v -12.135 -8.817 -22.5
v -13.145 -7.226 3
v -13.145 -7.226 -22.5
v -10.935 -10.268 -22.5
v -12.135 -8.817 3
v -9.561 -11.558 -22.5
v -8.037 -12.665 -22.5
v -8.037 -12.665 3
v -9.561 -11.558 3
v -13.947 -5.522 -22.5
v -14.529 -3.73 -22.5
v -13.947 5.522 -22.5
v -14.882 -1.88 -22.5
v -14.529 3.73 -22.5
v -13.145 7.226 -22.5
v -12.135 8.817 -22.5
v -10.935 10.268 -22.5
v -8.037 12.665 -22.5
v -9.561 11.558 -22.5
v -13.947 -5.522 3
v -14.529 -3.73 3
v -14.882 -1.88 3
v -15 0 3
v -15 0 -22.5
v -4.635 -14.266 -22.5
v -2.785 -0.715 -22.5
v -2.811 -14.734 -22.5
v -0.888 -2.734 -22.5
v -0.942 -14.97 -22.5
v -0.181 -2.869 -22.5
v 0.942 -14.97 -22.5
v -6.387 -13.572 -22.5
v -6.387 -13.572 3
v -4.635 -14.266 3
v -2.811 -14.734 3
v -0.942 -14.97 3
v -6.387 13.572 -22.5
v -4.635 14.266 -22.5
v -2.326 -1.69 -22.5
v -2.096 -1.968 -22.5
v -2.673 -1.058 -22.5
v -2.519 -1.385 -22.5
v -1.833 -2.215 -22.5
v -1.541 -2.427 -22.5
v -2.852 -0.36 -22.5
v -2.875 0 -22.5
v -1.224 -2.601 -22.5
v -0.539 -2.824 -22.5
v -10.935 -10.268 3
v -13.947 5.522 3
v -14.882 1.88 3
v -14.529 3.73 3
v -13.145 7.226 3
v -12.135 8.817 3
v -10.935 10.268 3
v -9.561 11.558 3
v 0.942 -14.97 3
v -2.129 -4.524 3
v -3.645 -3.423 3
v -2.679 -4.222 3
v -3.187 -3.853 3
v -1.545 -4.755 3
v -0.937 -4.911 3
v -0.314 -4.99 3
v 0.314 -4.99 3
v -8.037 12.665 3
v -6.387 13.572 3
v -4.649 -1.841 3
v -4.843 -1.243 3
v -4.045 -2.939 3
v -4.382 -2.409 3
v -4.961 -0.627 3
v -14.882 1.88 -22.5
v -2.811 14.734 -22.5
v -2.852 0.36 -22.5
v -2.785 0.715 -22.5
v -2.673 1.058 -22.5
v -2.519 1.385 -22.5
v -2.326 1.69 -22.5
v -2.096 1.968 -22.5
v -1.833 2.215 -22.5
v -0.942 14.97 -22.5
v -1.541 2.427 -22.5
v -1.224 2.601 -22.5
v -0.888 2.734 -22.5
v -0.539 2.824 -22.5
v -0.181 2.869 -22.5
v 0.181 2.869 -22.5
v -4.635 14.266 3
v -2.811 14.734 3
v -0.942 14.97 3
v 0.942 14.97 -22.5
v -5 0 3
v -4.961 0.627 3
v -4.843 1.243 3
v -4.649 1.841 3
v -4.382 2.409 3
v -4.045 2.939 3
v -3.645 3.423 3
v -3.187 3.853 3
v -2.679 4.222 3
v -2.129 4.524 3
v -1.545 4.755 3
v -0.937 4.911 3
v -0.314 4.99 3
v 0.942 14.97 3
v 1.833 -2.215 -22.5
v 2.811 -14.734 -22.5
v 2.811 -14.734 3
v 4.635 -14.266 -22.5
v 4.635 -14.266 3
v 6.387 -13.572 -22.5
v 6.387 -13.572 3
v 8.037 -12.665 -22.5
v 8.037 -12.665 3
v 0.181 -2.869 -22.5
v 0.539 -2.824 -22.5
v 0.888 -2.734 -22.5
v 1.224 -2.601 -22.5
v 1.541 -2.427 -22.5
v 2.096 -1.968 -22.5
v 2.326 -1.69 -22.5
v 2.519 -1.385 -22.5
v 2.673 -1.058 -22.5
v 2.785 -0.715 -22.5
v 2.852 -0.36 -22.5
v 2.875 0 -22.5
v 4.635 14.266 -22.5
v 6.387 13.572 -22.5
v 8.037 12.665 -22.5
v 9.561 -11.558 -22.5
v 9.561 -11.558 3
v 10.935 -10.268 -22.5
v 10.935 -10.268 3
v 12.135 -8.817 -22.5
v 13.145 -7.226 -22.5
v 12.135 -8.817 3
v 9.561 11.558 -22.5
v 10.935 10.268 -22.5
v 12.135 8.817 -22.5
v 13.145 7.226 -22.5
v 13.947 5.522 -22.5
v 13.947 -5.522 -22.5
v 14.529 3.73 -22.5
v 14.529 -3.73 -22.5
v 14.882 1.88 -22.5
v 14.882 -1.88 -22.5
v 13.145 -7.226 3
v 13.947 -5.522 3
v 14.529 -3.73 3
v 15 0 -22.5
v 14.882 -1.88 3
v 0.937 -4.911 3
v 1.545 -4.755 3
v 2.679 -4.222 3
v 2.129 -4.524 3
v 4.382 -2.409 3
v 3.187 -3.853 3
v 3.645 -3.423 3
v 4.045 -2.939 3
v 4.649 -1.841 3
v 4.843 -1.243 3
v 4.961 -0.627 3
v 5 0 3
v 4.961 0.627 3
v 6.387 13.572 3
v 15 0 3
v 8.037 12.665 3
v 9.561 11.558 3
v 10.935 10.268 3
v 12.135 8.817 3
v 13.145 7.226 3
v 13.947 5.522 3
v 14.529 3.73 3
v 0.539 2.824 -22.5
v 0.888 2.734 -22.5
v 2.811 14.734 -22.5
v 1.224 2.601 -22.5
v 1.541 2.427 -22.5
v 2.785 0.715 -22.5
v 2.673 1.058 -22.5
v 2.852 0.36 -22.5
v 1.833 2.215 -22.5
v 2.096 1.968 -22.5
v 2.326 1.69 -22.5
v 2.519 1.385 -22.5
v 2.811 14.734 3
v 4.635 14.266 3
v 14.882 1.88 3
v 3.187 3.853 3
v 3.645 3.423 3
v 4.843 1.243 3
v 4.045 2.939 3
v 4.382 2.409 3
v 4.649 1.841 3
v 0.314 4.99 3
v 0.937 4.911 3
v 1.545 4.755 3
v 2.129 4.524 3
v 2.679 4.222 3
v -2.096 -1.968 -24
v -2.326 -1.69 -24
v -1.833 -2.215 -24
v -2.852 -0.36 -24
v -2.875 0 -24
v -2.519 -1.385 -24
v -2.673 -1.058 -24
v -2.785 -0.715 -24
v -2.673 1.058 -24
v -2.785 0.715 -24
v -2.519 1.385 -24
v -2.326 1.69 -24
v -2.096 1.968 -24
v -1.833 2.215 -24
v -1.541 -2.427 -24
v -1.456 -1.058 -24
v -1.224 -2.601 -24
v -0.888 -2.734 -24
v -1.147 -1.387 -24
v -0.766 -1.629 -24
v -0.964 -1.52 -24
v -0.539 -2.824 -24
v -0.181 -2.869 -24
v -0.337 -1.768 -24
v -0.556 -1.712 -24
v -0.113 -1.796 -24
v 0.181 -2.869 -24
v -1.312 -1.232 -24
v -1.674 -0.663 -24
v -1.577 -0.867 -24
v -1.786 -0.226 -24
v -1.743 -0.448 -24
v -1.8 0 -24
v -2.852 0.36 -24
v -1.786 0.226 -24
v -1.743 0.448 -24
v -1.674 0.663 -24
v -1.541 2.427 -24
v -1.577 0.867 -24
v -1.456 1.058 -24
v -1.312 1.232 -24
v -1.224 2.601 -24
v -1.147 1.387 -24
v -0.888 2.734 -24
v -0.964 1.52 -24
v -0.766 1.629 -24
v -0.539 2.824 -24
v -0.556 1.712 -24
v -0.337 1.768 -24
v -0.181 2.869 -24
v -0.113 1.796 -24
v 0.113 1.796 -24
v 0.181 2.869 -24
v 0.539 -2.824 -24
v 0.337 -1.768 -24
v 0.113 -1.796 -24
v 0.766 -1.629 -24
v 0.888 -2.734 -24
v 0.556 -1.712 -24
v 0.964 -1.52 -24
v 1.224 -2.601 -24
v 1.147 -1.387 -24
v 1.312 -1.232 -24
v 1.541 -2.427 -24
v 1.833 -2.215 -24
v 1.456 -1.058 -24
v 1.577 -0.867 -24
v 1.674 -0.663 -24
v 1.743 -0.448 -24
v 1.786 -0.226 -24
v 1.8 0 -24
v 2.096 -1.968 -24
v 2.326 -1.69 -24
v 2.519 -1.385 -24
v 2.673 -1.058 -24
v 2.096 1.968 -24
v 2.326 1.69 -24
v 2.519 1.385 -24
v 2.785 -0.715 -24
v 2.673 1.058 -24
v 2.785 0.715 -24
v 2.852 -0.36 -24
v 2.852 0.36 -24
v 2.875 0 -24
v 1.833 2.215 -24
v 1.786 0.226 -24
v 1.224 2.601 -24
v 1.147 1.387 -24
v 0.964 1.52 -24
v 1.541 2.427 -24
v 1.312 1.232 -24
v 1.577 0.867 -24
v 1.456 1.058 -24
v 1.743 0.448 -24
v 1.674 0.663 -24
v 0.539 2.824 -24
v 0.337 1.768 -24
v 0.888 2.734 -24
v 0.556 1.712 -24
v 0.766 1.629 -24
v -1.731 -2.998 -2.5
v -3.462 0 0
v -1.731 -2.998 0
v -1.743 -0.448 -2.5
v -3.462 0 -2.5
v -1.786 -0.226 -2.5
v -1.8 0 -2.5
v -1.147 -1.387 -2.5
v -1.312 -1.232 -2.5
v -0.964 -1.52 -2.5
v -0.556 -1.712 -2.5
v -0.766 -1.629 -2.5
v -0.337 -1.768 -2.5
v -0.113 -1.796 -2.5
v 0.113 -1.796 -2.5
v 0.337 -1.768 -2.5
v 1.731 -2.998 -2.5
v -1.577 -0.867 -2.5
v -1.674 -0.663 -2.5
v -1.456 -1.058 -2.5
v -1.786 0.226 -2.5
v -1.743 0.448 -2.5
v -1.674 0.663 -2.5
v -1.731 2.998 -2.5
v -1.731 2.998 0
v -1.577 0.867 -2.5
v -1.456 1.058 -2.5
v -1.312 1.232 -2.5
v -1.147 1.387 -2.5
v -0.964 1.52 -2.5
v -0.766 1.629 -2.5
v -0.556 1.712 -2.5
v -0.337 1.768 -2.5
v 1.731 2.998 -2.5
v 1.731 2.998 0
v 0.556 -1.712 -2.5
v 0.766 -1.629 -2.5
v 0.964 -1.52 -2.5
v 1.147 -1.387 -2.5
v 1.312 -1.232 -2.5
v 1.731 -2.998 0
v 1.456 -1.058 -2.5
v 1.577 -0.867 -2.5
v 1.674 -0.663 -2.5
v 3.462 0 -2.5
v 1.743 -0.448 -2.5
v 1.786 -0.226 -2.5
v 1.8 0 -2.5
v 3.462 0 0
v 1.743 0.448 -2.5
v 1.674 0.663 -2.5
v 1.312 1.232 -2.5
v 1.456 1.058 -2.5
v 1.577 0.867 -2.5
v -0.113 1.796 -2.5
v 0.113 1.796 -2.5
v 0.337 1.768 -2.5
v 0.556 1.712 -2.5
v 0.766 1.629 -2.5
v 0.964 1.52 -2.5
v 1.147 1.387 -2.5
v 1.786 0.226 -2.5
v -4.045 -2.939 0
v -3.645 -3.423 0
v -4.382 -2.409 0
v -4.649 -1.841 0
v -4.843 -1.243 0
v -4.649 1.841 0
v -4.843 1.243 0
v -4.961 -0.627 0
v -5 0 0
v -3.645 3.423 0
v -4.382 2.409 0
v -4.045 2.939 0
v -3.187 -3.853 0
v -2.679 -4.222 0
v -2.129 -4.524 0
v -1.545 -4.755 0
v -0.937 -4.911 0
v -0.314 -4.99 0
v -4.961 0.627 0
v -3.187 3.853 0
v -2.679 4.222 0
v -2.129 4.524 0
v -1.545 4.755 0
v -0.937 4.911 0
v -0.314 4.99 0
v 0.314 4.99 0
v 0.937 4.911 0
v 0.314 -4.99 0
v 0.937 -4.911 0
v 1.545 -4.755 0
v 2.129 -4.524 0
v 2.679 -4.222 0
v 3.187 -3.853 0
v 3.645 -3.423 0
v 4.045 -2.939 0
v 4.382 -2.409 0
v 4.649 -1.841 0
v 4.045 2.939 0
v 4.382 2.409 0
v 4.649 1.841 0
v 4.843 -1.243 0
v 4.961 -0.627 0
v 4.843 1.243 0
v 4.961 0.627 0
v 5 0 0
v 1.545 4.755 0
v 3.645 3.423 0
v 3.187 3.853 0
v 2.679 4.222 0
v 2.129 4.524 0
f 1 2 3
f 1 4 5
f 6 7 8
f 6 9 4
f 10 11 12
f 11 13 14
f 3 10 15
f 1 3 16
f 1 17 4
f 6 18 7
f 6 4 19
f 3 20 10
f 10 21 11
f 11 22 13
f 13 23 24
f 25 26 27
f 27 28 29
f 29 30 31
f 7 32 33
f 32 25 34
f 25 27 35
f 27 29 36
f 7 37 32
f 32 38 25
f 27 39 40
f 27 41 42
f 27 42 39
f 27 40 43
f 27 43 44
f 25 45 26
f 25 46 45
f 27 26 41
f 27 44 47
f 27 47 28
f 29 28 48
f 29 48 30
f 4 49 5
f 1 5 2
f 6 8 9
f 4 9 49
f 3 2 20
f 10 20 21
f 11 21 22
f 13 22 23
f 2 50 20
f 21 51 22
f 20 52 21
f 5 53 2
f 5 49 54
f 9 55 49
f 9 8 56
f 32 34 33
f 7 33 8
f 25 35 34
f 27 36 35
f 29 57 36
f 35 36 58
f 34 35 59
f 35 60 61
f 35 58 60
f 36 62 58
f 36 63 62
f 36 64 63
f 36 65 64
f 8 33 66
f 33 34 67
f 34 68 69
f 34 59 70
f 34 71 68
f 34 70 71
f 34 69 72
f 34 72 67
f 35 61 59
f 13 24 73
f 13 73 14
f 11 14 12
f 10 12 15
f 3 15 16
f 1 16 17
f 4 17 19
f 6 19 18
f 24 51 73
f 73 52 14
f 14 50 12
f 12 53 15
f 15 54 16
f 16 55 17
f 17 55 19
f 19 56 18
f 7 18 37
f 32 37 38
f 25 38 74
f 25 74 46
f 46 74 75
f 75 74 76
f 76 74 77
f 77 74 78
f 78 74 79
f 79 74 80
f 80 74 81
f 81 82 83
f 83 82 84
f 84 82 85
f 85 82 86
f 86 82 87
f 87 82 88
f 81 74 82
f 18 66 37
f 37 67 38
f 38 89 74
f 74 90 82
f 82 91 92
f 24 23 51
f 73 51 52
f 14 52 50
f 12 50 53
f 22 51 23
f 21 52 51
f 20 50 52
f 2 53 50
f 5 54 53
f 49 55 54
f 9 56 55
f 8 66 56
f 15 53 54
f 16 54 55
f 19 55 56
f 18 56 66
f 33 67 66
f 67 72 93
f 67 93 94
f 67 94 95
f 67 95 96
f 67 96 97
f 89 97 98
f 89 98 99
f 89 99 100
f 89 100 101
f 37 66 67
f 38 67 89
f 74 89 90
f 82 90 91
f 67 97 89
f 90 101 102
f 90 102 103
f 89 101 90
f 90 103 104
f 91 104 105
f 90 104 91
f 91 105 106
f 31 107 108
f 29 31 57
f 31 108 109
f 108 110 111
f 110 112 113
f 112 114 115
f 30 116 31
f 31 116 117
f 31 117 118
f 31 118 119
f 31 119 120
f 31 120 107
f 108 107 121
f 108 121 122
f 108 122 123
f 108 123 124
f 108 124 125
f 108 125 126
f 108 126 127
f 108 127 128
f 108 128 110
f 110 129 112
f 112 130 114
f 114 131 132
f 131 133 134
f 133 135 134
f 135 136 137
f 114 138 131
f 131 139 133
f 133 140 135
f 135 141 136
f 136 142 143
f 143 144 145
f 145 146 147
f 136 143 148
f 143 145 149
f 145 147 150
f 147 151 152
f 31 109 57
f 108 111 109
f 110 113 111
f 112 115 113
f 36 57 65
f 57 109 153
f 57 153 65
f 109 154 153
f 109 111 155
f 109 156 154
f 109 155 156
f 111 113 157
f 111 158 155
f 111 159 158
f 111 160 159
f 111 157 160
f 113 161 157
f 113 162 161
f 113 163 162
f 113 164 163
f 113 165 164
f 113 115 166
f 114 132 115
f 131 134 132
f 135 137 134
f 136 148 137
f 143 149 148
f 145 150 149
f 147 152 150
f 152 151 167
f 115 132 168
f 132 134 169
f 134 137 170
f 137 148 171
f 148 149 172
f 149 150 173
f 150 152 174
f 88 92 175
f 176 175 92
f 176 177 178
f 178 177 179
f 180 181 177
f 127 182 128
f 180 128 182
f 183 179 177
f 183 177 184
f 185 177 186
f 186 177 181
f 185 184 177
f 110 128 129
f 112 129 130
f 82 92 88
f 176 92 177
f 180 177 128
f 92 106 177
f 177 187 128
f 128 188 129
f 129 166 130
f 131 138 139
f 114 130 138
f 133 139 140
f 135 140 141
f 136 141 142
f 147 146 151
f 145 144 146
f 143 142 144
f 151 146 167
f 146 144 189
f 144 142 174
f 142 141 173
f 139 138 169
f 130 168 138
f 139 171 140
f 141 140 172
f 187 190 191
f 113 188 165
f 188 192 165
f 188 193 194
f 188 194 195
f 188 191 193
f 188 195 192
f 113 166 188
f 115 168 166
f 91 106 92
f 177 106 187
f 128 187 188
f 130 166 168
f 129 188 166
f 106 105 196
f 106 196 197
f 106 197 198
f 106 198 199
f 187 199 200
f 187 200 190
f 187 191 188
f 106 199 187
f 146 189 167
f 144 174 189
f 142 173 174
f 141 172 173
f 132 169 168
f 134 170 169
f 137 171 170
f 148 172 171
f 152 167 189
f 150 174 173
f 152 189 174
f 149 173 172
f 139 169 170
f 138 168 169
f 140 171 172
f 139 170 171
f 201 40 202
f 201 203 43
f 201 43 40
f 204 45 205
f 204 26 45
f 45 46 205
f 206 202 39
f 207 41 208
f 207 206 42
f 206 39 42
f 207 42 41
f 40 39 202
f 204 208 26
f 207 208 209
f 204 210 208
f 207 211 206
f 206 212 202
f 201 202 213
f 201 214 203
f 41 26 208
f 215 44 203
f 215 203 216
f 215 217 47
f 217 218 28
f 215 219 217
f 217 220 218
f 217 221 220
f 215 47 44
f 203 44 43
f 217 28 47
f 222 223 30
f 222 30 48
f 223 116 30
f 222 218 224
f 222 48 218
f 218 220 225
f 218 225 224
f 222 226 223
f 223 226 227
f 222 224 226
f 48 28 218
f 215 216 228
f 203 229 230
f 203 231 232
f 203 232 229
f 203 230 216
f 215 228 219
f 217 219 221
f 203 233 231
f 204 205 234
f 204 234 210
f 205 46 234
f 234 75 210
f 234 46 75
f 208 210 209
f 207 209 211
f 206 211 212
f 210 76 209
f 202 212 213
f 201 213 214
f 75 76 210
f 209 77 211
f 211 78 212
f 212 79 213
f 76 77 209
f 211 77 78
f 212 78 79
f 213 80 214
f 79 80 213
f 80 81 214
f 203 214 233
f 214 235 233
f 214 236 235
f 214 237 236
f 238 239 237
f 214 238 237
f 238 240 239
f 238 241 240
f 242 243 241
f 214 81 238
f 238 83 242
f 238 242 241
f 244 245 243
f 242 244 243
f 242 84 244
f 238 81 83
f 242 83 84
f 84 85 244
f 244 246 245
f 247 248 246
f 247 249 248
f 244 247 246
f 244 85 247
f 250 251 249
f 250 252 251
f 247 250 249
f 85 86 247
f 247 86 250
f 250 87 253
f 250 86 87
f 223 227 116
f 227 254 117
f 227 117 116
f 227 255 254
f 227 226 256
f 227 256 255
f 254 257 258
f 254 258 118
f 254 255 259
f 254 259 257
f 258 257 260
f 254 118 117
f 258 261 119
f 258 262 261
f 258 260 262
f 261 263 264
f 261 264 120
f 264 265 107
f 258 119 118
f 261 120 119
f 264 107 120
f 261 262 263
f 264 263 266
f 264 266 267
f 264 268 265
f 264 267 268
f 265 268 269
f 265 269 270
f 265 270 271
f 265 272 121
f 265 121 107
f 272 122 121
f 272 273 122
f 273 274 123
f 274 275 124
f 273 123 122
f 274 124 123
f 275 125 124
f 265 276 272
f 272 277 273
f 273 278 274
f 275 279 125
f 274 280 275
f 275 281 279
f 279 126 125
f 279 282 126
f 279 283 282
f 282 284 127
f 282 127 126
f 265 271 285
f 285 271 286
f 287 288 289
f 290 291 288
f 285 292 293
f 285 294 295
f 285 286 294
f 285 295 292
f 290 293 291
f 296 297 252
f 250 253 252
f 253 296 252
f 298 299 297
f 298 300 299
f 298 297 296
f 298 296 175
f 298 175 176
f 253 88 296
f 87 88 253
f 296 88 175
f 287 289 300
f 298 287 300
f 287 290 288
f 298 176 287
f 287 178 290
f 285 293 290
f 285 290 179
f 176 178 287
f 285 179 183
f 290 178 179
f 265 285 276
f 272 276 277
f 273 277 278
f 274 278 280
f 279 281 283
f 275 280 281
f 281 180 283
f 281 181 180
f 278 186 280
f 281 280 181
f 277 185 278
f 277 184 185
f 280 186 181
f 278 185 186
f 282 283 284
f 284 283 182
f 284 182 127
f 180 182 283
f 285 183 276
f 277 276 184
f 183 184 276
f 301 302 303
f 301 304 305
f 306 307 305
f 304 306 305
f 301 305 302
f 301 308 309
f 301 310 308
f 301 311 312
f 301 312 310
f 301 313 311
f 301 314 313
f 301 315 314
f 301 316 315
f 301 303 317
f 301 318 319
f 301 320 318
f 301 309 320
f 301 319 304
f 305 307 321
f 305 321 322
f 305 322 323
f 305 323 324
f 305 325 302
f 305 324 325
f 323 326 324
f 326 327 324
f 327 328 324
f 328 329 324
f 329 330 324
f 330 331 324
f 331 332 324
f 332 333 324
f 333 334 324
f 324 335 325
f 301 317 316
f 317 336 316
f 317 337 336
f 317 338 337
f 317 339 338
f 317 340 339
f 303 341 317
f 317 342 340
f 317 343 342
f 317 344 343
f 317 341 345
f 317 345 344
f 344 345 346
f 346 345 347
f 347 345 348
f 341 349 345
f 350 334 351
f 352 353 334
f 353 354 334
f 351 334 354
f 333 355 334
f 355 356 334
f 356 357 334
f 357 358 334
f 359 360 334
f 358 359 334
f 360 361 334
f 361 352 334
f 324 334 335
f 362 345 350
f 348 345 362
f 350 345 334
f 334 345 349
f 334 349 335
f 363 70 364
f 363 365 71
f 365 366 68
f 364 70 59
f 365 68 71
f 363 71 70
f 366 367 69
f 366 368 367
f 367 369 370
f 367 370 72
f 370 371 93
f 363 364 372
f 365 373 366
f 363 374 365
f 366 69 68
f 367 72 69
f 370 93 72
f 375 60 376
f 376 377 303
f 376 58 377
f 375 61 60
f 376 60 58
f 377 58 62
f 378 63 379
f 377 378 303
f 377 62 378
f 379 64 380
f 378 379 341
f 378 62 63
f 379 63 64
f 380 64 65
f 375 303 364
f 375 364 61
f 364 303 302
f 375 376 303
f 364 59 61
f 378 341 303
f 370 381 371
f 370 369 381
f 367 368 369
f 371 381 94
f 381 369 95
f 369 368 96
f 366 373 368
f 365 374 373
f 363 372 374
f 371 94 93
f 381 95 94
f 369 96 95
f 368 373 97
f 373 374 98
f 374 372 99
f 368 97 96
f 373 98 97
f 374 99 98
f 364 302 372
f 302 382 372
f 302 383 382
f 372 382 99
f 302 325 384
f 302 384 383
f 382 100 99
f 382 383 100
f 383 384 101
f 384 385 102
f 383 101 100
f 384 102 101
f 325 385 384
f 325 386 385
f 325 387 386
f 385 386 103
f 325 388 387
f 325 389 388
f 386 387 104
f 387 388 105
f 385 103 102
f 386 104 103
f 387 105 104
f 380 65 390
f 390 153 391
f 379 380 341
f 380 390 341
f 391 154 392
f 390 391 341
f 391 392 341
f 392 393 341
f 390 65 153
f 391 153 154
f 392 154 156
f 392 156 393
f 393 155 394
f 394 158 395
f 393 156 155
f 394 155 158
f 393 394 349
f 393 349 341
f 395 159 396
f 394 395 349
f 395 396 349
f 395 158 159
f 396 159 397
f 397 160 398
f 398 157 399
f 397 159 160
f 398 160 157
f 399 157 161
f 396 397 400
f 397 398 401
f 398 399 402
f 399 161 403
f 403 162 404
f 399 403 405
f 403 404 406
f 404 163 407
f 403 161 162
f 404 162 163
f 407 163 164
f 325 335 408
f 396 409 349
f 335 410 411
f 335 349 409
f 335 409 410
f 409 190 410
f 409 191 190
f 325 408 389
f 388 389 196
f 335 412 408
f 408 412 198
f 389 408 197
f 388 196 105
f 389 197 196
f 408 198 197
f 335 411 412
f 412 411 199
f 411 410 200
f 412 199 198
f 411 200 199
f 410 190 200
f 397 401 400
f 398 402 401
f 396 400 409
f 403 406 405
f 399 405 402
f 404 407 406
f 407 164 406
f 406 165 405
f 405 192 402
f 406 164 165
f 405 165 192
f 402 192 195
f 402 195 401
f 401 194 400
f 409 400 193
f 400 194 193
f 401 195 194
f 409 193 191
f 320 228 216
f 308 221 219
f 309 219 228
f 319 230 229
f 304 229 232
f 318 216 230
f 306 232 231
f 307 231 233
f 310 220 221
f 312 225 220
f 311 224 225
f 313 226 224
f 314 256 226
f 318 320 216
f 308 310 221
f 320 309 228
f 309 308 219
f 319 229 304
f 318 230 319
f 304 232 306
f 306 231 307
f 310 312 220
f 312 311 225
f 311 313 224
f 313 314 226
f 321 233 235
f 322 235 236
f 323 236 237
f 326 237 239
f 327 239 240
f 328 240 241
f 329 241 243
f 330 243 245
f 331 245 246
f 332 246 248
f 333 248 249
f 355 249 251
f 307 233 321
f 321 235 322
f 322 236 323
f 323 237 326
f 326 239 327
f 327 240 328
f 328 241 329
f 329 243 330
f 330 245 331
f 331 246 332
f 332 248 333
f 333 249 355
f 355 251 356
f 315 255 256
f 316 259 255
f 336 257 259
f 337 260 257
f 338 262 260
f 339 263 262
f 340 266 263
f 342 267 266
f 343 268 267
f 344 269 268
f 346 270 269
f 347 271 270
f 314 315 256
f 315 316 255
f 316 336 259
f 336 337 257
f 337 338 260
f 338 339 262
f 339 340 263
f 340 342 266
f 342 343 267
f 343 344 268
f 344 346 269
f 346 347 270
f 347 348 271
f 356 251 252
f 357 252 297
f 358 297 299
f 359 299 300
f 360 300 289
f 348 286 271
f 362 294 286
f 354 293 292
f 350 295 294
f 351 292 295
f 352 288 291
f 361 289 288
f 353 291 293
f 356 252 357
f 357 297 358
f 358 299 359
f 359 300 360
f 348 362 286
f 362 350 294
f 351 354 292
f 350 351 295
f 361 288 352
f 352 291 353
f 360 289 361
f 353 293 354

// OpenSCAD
$fn = 50;


difference() {
	union() {
		translate(v = [0, 0, -22.5000000000]) {
			cylinder(h = 25.5000000000, r = 15.0000000000);
		}
		#translate(v = [0, 0, -24.0000000000]) {
			cylinder(h = 24, r = 2.8750000000);
		}
	}
	union() {
		translate(v = [0, 0, 0]) {
			rotate(a = [0, 0, 0]) {
				difference() {
					union() {
						translate(v = [0, 0, -2.5000000000]) {
							linear_extrude(height = 2.5000000000) {
								polygon(points = [[3.4620000000, 0.0000000000], [1.7310000000, 2.9981799479], [-1.7310000000, 2.9981799479], [-3.4620000000, 0.0000000000], [-1.7310000000, -2.9981799479], [1.7310000000, -2.9981799479]]);
							}
						}
					}
					union();
				}
			}
		}
		#cylinder(h = 3, r = 5.0000000000);
		#translate(v = [0, 0, -100.0000000000]) {
			cylinder(h = 200, r = 1.8000000000);
		}
	}
}
